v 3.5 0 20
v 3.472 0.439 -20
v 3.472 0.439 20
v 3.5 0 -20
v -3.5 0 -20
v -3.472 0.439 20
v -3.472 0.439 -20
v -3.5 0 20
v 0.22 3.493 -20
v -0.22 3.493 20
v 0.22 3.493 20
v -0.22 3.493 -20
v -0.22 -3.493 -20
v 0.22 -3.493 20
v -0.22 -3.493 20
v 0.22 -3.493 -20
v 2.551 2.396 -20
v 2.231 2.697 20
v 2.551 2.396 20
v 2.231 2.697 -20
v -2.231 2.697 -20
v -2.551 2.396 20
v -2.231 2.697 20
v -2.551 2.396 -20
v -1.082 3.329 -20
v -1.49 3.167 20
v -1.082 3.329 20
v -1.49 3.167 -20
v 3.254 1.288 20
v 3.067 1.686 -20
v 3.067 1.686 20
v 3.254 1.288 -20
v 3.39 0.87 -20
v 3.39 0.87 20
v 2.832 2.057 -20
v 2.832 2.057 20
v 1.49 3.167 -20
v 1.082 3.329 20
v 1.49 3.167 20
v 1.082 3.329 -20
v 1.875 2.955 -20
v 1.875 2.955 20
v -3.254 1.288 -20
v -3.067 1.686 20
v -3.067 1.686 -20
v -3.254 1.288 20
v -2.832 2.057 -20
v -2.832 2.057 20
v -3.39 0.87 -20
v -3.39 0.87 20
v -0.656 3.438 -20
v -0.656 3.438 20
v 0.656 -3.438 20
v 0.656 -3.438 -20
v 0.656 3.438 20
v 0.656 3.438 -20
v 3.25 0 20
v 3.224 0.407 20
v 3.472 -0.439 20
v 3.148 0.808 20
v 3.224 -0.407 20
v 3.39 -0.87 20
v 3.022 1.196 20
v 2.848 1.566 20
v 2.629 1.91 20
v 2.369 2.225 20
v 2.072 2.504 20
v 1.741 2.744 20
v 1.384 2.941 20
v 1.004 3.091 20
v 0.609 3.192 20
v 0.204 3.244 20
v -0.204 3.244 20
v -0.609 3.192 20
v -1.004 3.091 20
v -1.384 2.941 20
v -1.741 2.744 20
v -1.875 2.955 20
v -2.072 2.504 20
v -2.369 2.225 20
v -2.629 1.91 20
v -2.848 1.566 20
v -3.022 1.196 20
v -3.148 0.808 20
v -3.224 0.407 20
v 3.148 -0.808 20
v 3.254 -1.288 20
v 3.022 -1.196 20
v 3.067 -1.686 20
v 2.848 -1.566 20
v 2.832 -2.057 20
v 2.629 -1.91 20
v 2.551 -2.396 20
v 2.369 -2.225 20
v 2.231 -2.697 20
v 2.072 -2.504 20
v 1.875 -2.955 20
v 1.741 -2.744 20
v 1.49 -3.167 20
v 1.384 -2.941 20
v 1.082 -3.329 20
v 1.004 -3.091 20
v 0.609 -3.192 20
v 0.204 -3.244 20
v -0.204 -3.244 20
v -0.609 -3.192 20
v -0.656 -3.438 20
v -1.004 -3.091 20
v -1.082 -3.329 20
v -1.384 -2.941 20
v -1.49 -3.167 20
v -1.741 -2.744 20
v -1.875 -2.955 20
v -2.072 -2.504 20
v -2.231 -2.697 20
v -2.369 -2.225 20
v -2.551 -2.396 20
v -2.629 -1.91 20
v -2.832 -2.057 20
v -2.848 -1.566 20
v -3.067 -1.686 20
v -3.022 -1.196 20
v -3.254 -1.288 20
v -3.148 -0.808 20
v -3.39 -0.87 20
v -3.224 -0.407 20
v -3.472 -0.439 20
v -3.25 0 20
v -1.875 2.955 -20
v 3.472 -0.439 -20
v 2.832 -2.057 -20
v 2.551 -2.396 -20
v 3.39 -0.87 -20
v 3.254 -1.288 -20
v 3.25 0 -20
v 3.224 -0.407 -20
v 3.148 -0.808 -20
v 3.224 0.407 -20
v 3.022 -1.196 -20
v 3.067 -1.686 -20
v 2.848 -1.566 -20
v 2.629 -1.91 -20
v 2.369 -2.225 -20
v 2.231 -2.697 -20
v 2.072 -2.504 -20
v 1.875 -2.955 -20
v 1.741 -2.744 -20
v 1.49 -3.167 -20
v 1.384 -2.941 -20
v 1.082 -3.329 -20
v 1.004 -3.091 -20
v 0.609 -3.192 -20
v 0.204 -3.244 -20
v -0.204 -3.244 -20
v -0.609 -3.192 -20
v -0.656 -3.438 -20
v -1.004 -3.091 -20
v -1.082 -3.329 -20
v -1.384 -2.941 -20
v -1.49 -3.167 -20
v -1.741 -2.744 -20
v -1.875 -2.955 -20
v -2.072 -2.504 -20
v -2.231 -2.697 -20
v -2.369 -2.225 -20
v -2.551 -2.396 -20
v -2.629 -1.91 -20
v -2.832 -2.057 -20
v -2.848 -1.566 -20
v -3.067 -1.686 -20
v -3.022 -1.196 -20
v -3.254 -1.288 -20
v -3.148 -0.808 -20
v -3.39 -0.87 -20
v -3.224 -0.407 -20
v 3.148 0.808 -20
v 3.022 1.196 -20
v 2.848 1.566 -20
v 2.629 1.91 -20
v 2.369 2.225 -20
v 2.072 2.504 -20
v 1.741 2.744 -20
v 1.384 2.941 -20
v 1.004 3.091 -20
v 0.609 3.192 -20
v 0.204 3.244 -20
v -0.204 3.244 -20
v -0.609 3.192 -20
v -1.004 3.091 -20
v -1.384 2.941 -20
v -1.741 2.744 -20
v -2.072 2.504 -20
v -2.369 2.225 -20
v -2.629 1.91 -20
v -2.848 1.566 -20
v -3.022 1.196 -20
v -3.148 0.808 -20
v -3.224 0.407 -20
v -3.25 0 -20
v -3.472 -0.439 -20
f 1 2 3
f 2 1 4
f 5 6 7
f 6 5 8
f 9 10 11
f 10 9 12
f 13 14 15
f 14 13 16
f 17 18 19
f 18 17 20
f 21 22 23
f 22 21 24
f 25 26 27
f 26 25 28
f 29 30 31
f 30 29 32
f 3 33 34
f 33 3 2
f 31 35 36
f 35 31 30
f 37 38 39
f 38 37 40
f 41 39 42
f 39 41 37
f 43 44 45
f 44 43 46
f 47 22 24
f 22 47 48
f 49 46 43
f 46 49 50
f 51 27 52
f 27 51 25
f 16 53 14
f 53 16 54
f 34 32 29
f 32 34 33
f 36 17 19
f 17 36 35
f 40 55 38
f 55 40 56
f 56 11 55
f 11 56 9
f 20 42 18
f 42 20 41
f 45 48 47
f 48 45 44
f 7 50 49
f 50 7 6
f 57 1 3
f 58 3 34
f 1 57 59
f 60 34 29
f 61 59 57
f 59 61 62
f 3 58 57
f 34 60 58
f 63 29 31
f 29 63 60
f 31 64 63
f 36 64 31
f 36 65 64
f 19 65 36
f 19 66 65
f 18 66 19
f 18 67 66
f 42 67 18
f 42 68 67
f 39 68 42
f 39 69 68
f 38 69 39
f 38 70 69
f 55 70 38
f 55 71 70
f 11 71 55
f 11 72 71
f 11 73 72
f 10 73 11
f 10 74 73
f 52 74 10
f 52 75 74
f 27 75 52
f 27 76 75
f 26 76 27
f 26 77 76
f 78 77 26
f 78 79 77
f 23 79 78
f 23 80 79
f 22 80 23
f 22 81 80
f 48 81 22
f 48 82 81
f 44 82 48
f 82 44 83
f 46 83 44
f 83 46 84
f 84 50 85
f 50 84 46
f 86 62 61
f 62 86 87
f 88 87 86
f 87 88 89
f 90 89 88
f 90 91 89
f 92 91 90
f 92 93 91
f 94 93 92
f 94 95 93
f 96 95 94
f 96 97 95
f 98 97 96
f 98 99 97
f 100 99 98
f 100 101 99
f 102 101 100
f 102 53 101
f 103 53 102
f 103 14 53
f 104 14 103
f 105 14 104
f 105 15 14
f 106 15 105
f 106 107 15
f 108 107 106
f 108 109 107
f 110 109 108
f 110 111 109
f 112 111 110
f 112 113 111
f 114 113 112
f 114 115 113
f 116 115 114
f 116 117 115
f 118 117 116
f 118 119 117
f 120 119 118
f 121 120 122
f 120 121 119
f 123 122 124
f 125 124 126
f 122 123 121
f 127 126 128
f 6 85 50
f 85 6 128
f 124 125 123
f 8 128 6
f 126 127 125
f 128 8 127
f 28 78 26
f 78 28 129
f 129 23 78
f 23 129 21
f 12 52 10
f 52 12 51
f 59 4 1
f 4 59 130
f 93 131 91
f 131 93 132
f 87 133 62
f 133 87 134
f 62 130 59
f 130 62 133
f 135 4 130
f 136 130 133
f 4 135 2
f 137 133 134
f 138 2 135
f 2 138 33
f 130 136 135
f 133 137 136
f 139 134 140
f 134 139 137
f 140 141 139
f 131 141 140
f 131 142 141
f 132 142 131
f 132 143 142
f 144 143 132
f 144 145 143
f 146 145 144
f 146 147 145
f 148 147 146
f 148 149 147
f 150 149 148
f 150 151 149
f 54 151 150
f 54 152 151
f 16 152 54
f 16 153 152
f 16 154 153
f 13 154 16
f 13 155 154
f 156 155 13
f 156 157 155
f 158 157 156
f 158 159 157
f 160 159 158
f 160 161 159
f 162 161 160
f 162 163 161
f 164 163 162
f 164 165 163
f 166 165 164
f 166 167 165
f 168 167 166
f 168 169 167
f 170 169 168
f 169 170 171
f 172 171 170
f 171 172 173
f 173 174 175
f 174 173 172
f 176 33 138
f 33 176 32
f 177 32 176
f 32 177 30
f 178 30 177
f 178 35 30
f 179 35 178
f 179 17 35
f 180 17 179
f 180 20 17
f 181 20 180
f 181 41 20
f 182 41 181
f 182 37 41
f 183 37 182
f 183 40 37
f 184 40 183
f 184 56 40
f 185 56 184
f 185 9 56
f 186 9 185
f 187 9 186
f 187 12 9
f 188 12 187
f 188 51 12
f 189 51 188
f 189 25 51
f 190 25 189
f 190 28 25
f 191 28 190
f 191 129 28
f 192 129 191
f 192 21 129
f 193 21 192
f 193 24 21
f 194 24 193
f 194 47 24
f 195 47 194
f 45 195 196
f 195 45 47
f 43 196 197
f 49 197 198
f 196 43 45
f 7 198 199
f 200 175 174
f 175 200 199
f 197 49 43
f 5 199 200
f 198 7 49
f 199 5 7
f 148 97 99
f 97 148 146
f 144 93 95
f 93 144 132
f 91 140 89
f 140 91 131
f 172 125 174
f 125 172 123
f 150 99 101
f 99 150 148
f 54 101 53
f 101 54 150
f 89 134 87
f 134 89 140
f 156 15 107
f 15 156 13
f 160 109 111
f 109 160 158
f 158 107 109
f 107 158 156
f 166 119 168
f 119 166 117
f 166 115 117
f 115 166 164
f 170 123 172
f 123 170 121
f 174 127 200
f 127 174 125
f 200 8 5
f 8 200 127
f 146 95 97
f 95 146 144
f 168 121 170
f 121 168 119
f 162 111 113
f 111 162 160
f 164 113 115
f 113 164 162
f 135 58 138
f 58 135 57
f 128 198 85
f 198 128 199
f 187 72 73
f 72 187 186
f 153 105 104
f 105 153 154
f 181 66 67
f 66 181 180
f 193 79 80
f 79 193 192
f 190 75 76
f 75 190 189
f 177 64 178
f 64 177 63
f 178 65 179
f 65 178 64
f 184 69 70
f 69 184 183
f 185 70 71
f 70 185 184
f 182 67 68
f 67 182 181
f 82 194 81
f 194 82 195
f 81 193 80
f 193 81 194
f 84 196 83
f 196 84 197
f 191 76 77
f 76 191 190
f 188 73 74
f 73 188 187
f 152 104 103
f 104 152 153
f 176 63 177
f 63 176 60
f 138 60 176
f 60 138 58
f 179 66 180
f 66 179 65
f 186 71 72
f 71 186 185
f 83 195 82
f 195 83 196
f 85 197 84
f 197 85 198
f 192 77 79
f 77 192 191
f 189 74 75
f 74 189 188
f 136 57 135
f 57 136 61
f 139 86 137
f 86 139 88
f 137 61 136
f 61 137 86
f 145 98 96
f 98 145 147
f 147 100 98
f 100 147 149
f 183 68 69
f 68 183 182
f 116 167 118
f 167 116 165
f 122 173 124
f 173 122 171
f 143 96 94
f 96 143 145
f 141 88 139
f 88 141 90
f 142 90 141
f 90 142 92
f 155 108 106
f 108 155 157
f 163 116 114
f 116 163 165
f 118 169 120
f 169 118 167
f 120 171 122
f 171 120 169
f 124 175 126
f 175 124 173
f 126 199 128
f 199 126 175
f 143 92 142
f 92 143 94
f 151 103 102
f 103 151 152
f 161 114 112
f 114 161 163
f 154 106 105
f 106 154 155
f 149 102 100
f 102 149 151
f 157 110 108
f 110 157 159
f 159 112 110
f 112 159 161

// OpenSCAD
$fn = 50;


difference() {
	union() {
		translate(v = [0, 0, -20.0000000000]) {
			cylinder(h = 40, r = 3.5000000000);
		}
	}
	union() {
		translate(v = [0, 0, -100.0000000000]) {
			cylinder(h = 200, r = 3.2500000000);
		}
	}
}
